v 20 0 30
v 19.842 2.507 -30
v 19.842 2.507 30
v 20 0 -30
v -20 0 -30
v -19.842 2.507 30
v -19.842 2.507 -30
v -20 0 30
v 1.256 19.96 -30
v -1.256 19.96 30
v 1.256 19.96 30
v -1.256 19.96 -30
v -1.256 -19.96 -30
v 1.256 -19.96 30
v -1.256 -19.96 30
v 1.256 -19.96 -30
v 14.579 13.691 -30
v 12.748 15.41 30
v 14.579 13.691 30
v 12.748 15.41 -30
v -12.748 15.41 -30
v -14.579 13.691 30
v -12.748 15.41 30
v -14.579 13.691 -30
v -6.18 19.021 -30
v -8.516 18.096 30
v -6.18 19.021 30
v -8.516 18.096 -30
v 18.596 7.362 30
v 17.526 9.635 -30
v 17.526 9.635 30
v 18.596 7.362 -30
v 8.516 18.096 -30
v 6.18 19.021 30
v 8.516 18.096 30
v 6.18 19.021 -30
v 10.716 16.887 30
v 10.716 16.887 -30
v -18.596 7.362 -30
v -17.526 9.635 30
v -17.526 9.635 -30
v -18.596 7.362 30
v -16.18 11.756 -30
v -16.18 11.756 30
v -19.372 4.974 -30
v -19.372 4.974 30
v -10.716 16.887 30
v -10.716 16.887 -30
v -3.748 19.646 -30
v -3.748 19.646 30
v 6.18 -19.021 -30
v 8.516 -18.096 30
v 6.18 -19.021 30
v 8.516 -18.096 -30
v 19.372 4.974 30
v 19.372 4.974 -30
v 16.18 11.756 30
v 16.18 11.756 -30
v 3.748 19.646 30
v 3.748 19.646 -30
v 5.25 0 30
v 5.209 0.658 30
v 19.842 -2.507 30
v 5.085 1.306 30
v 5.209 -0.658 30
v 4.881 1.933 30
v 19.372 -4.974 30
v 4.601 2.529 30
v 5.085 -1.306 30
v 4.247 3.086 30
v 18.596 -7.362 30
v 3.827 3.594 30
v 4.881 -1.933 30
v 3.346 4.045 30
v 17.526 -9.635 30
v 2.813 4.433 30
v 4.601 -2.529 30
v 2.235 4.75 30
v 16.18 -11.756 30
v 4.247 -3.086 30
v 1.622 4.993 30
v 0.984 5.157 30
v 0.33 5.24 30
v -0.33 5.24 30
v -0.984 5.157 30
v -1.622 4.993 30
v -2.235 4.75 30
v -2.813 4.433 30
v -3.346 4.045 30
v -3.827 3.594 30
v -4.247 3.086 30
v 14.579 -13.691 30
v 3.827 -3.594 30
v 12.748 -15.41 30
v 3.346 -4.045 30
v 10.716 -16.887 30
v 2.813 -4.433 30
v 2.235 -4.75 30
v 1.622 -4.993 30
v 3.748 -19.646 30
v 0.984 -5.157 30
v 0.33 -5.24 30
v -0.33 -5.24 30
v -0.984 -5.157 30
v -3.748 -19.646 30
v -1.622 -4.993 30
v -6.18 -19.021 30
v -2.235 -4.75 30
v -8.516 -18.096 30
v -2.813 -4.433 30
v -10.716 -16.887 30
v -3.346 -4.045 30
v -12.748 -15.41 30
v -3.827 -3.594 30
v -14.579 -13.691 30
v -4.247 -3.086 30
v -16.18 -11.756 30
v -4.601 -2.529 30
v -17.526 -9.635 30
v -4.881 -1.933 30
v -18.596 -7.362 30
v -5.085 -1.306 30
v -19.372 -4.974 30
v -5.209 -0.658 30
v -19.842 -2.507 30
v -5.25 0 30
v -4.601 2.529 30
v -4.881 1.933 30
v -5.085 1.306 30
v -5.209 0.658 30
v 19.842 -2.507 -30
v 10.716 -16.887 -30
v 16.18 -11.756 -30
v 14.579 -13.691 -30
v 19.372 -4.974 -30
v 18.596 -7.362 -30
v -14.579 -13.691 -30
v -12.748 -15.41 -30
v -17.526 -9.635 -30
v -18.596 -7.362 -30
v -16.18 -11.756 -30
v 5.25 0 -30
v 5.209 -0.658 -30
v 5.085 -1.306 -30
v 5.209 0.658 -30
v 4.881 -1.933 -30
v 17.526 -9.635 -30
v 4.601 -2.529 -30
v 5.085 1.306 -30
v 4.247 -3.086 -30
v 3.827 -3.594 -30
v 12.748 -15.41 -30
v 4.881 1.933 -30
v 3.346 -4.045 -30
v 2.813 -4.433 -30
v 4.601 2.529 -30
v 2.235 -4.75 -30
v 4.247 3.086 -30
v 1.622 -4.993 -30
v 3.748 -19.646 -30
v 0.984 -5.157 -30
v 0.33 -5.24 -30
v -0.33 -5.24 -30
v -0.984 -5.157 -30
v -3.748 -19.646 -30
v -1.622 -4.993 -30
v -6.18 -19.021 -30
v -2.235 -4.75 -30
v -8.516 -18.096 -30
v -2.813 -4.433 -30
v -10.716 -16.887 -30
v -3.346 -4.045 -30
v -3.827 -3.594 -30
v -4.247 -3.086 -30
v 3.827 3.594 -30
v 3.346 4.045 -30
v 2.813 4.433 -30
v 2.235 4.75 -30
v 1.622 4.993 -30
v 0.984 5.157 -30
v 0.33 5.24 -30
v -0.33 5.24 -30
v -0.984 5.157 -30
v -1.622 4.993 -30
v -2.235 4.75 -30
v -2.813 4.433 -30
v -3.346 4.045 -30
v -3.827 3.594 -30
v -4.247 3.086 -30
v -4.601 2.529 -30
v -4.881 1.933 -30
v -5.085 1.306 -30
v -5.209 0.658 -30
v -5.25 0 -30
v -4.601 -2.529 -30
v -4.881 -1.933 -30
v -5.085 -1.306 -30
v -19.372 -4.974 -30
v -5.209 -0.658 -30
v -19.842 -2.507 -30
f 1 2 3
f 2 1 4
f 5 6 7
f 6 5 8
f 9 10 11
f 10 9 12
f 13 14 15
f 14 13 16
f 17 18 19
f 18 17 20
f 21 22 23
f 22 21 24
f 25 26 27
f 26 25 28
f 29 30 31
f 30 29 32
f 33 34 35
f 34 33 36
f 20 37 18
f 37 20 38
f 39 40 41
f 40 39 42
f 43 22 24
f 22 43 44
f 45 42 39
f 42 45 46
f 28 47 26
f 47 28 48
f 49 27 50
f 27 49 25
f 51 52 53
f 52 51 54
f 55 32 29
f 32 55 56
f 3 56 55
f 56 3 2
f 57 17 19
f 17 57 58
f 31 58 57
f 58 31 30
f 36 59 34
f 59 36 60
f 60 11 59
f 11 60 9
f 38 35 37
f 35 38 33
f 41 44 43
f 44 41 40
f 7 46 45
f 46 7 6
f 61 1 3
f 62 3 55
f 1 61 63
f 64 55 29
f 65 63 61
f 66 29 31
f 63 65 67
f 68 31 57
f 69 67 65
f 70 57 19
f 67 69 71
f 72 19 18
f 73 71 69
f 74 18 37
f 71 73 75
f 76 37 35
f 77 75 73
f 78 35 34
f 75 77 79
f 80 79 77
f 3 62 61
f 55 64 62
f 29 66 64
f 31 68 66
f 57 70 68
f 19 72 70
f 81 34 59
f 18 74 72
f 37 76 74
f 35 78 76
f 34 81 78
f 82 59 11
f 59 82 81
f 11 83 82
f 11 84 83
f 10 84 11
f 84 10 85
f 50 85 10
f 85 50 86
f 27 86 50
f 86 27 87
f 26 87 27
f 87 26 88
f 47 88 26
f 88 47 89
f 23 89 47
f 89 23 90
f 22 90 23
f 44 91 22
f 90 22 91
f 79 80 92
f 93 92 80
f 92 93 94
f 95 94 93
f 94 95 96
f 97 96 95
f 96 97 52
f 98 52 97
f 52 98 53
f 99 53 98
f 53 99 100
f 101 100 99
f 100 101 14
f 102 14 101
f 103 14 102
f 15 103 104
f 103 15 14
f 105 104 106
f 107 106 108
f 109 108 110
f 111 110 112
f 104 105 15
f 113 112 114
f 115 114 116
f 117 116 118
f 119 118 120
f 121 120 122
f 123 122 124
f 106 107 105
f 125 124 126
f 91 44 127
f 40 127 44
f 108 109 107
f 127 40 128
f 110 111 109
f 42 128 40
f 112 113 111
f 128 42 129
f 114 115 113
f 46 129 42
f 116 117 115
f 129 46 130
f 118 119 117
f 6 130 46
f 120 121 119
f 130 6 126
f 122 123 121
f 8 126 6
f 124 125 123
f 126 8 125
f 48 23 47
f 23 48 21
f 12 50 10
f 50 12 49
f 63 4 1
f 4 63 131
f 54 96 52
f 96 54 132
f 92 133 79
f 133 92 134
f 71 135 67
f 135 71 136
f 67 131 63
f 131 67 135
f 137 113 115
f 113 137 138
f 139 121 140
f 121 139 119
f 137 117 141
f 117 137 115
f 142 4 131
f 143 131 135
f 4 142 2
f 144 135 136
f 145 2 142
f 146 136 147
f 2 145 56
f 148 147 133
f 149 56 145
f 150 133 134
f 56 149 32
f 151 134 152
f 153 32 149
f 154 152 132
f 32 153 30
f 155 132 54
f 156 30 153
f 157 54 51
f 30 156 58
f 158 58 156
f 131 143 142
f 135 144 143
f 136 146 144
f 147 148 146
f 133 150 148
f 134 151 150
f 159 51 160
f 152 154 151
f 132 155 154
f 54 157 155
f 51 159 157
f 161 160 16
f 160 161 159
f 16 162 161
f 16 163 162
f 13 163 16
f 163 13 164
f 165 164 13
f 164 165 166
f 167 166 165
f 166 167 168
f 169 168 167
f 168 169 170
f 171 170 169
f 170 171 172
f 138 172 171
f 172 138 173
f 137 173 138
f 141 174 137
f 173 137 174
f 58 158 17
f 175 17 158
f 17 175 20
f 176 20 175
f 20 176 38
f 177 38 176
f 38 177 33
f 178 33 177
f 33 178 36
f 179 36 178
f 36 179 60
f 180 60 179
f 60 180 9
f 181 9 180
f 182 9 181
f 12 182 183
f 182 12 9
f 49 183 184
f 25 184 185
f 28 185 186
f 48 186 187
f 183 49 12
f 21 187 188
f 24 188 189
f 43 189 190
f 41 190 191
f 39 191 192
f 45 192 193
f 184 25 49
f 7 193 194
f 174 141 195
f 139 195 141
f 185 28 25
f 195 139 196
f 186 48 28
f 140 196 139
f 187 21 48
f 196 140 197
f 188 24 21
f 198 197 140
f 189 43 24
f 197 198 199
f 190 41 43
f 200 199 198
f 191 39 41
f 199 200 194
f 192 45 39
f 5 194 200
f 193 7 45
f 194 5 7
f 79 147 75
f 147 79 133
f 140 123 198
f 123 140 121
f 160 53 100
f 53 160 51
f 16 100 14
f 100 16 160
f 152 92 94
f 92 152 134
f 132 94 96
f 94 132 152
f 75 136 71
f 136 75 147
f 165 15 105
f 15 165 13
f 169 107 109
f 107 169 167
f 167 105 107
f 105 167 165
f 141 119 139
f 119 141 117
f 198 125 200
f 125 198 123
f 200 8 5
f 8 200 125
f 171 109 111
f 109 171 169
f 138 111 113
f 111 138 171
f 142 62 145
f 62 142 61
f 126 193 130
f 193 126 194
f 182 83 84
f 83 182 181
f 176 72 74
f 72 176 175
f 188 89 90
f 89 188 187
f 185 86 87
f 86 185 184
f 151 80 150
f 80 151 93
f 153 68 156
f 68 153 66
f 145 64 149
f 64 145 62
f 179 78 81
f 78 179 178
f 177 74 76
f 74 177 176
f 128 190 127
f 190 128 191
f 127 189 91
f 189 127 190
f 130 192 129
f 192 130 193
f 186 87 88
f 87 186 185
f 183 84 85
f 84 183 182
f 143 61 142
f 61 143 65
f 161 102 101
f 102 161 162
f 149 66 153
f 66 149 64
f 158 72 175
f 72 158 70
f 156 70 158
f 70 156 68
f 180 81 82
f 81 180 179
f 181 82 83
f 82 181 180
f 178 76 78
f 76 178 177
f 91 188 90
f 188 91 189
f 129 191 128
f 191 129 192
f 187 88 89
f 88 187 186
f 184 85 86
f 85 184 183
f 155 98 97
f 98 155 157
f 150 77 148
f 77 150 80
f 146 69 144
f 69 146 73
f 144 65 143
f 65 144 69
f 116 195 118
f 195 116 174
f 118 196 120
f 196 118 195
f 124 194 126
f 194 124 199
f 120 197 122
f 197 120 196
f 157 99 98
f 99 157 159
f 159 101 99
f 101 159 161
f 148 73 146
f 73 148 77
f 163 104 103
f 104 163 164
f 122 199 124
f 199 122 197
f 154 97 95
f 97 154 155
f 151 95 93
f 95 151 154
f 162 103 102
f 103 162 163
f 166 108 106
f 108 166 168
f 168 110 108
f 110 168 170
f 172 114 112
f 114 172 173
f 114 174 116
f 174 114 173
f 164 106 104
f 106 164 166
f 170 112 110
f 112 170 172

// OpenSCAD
$fn = 50;


difference() {
	union() {
		translate(v = [0, 0, -30.0000000000]) {
			cylinder(h = 60, r = 20.0000000000);
		}
	}
	union() {
		translate(v = [0, 0, -100.0000000000]) {
			cylinder(h = 200, r = 5.2500000000);
		}
	}
}
